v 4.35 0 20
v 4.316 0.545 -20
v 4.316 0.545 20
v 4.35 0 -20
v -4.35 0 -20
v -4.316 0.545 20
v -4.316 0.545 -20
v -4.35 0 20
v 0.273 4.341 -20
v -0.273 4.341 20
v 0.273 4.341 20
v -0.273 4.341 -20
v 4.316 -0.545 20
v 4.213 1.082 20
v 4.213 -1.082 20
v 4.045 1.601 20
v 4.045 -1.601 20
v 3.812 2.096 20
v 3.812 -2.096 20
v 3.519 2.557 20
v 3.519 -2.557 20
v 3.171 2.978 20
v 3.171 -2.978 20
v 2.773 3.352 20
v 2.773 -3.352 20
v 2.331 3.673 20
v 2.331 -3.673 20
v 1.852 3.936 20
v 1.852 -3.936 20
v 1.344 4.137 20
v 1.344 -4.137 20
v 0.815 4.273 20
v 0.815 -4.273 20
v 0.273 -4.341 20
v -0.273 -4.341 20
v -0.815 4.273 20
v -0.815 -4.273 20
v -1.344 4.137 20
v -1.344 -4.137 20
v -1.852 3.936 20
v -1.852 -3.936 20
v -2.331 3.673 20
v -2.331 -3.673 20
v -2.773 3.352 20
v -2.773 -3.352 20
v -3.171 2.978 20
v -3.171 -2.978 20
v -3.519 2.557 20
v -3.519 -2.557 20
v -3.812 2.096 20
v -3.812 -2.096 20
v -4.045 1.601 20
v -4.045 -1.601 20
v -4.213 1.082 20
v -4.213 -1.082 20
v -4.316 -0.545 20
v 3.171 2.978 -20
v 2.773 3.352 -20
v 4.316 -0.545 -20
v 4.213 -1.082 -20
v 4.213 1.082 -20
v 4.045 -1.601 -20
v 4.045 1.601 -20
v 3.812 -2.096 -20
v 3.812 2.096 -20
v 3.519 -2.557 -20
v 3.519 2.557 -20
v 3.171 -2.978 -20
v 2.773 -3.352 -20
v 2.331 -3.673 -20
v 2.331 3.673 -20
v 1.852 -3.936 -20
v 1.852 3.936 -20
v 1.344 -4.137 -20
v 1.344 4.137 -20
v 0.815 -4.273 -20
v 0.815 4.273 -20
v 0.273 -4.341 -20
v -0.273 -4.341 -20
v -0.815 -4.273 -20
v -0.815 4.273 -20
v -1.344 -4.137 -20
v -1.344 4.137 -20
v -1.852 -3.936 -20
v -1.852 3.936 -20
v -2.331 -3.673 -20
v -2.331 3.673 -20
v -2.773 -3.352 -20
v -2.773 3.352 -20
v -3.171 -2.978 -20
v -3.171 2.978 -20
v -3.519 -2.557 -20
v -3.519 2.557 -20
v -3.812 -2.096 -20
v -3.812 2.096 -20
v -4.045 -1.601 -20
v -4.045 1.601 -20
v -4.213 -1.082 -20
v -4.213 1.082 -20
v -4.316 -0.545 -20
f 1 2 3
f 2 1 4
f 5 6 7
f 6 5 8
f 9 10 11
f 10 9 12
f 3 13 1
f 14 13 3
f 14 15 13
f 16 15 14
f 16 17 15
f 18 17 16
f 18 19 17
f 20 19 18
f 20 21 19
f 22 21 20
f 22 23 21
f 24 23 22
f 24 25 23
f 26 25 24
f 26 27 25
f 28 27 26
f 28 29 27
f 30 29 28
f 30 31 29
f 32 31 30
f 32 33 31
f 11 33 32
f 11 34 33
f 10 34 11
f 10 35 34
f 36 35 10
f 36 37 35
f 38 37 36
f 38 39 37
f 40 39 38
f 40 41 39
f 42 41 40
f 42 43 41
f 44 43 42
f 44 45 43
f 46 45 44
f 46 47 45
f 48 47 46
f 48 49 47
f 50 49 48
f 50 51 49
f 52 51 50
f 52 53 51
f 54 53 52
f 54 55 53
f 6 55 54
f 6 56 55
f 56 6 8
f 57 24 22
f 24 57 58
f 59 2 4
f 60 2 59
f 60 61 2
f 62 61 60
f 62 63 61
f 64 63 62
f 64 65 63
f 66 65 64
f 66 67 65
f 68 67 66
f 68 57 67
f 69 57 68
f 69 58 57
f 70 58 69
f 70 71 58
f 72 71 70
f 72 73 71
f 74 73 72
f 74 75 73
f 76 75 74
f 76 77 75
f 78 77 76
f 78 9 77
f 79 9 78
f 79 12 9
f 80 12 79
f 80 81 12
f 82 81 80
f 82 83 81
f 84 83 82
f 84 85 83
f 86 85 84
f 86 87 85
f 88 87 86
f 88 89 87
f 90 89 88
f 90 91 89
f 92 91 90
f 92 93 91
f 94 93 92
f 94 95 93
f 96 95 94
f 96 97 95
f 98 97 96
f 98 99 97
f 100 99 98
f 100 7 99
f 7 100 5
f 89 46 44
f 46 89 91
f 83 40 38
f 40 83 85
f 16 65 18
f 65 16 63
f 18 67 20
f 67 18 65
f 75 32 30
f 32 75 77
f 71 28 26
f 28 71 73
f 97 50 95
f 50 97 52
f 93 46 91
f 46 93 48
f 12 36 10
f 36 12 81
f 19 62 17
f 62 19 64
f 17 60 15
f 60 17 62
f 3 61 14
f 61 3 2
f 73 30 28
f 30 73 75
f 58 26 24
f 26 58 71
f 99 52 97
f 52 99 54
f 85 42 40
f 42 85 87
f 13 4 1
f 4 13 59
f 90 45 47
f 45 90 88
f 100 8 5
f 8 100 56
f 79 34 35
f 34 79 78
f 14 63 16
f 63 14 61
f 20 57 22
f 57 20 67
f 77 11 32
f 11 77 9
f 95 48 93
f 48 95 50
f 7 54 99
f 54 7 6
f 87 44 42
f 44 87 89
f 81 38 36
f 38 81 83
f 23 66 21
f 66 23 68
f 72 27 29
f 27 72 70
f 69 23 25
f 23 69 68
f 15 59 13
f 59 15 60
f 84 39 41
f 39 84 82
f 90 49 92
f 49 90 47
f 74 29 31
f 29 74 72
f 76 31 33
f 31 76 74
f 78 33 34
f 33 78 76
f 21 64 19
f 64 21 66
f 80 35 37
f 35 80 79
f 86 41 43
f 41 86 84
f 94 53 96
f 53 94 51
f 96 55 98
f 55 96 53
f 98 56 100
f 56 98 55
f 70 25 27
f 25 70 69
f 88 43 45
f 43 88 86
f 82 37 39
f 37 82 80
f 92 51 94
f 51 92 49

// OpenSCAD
$fn = 50;


difference() {
	union() {
		translate(v = [0, 0, -20.0000000000]) {
			cylinder(h = 40, r = 4.3500000000);
		}
	}
	union() {
		translate(v = [0, 0, -100.0000000000]) {
			cylinder(h = 200, r = 0);
		}
	}
}
